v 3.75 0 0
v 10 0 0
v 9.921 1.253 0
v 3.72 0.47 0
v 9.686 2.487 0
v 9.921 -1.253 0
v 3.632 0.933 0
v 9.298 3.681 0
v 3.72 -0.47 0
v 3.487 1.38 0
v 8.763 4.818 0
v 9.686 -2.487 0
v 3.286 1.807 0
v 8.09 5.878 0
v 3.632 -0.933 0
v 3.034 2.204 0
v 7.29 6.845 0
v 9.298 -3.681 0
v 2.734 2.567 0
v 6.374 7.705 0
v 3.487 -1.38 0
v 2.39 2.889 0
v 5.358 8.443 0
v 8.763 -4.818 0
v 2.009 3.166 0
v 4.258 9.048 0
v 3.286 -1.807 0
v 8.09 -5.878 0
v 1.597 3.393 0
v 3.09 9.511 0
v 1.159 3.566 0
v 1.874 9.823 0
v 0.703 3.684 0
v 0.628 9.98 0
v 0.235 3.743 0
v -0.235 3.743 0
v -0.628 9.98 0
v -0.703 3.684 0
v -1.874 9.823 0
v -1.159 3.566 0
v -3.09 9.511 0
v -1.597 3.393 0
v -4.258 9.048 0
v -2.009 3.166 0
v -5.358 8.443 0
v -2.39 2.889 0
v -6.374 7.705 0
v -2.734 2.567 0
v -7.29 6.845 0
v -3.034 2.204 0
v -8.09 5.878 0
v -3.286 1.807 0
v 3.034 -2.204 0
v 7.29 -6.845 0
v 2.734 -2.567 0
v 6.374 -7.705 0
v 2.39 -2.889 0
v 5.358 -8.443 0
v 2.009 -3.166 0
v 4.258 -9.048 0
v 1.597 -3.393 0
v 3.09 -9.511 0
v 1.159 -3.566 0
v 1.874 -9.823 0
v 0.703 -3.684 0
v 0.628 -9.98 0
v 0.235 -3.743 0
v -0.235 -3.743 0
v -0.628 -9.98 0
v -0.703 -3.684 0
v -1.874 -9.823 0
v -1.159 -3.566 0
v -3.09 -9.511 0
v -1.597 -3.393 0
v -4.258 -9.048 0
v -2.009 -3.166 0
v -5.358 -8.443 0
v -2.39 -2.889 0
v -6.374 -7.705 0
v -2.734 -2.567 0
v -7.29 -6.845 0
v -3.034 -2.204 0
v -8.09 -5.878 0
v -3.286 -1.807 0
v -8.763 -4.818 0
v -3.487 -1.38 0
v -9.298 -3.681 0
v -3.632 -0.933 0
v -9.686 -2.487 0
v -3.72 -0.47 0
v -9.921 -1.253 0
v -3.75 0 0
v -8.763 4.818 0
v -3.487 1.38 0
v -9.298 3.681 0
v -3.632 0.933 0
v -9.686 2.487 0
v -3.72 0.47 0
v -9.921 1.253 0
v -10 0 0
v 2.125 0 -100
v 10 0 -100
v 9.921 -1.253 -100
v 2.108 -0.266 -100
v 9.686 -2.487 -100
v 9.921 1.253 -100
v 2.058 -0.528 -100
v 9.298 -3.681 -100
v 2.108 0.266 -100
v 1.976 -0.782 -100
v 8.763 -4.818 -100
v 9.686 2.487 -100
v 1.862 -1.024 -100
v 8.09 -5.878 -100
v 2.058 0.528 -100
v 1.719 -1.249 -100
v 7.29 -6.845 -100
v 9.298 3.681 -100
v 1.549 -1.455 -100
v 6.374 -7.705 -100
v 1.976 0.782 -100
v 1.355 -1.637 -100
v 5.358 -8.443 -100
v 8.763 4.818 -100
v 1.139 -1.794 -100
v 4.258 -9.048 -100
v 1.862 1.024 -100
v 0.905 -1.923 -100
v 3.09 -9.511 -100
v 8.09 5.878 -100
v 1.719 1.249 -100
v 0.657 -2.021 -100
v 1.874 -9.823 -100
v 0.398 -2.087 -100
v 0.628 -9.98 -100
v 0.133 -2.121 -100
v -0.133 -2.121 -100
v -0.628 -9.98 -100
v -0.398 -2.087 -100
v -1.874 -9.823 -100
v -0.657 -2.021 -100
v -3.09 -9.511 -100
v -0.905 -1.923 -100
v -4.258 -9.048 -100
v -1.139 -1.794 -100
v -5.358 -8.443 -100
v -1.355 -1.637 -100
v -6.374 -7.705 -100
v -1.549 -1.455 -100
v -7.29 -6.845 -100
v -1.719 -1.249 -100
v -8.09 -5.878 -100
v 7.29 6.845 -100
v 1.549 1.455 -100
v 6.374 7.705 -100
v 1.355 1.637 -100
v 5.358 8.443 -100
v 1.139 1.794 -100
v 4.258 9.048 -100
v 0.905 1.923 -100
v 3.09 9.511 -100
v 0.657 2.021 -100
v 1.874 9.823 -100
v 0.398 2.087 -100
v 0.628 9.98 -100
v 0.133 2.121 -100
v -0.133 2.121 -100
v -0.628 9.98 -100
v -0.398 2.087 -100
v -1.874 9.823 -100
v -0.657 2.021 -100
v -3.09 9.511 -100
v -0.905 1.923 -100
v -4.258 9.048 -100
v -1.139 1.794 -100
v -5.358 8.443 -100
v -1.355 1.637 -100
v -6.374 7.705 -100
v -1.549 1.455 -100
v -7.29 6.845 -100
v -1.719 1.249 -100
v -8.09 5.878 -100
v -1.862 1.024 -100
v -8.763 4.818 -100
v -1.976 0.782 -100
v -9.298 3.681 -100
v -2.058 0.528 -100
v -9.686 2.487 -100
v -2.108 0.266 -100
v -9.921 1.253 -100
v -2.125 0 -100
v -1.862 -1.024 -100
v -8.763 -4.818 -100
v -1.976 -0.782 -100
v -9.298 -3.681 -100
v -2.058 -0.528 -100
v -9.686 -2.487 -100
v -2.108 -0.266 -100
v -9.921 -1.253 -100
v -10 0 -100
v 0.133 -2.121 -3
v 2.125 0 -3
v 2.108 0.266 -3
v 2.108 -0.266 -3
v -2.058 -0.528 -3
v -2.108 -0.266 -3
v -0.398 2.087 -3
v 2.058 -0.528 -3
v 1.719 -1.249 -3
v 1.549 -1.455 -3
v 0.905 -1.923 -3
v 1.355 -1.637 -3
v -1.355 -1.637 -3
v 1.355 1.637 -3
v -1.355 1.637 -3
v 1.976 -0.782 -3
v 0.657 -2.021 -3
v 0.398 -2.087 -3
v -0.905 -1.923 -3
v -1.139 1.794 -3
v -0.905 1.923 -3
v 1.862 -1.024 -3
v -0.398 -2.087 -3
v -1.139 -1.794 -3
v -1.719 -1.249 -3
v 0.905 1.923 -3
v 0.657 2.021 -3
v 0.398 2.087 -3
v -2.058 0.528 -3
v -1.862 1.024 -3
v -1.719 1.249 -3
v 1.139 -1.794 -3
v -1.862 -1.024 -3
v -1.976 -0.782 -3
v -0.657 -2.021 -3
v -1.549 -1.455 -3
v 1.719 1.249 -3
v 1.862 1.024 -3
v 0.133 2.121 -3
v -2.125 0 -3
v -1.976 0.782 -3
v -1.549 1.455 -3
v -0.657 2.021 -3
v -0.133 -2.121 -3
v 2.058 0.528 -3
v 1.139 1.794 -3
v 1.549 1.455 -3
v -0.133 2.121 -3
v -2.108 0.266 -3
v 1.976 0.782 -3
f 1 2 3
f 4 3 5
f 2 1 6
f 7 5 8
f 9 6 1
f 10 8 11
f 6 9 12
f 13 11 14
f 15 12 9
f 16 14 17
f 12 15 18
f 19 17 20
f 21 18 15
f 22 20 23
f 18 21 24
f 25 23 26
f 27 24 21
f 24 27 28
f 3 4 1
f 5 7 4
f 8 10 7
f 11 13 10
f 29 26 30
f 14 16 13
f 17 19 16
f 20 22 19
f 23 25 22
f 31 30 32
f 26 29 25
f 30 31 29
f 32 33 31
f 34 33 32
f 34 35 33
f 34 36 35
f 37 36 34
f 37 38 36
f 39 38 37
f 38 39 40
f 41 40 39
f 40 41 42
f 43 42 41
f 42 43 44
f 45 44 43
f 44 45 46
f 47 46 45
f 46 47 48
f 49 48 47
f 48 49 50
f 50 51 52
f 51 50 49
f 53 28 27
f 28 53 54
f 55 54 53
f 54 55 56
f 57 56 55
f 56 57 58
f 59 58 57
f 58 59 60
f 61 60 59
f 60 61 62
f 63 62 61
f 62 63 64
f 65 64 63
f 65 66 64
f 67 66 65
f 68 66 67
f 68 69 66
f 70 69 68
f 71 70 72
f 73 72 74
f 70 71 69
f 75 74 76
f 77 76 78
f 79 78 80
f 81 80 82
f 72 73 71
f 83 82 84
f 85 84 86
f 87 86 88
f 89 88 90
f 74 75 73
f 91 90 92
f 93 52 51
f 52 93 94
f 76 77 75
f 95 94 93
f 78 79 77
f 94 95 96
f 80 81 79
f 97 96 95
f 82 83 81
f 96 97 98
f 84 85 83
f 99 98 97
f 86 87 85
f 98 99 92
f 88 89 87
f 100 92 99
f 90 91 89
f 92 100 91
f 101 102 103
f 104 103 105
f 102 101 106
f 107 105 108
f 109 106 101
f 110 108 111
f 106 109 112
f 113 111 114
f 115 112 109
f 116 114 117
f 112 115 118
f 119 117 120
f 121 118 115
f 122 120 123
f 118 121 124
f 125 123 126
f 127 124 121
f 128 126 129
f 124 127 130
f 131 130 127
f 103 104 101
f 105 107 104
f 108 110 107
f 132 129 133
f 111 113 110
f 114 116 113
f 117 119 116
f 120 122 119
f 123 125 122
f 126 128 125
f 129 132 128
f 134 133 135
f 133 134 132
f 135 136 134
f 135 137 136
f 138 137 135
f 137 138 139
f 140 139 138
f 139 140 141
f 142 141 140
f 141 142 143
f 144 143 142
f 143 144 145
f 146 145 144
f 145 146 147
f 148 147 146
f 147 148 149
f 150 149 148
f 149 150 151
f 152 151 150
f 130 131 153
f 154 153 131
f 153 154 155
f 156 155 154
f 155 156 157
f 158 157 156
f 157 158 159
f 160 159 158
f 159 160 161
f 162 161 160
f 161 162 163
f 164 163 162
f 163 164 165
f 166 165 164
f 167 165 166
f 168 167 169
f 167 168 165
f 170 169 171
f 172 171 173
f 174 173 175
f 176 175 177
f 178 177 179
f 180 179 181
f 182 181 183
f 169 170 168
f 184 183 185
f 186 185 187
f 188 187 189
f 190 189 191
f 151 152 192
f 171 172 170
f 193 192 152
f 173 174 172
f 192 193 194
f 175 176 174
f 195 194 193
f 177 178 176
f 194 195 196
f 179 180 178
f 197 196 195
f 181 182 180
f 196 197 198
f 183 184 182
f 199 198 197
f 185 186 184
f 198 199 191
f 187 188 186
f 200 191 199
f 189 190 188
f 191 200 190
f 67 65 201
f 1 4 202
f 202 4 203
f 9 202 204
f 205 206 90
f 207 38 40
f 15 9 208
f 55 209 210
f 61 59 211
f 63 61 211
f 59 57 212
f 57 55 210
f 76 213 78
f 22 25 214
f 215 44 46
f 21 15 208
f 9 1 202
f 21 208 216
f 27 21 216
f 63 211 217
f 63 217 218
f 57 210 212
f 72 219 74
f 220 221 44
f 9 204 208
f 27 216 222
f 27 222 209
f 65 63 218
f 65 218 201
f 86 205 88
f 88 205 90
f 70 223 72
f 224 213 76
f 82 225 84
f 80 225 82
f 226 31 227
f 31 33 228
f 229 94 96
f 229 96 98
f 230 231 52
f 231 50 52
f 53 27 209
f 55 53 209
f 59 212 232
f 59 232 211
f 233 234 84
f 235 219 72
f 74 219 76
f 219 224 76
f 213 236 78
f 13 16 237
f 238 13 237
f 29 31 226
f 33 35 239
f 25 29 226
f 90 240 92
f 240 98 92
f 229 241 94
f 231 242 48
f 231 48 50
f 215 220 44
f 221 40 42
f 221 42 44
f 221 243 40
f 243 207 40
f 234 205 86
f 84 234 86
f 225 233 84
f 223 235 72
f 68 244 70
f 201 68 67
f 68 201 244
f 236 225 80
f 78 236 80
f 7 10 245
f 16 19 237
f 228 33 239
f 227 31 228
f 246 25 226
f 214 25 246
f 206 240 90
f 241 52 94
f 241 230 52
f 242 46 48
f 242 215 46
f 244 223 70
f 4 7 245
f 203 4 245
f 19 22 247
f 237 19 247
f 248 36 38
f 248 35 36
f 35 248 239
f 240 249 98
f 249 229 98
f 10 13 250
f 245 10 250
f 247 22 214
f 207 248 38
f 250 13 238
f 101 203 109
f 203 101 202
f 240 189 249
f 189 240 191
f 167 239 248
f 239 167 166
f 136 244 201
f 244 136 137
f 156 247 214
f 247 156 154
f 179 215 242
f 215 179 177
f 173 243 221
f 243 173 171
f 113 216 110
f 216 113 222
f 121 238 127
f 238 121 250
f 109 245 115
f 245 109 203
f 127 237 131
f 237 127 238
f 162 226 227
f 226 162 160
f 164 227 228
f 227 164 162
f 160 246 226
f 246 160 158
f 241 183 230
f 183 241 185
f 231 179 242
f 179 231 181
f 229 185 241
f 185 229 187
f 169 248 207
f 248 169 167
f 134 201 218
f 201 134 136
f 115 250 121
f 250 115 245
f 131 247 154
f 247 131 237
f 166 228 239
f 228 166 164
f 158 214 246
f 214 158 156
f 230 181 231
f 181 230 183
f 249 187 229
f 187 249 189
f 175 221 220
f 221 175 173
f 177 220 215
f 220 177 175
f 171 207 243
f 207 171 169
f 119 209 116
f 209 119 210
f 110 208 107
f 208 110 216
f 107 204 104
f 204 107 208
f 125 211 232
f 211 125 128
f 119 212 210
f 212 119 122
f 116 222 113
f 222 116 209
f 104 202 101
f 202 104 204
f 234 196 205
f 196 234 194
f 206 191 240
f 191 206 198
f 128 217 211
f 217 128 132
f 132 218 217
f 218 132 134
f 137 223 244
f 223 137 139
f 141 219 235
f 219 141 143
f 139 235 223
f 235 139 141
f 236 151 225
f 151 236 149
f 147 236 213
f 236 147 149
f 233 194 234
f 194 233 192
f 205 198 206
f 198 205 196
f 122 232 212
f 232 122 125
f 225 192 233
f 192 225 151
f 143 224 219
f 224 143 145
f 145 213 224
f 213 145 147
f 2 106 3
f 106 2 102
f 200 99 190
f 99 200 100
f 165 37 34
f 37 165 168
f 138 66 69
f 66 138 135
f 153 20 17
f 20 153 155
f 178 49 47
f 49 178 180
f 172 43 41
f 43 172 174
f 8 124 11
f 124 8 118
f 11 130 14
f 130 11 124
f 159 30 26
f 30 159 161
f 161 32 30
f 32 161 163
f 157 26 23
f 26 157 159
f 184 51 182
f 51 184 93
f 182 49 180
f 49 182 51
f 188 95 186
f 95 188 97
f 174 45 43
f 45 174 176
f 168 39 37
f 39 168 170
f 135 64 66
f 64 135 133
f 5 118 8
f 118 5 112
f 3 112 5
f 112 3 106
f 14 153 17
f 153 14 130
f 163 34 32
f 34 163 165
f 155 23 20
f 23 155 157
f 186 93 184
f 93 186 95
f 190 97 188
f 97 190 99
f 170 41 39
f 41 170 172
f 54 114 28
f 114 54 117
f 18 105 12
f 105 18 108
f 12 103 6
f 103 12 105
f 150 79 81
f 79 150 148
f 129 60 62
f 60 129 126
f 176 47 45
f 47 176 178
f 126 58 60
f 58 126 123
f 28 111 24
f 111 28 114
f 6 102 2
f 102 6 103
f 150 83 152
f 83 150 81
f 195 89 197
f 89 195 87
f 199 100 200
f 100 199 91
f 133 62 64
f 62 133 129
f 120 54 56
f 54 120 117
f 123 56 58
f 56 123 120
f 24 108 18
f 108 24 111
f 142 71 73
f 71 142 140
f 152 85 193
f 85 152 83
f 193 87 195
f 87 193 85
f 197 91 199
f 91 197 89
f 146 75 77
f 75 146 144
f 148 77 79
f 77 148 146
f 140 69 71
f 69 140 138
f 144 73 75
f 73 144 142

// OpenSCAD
$fn = 50;


difference() {
	union() {
		translate(v = [0, 0, -100.0000000000]) {
			cylinder(h = 100, r = 10.0000000000);
		}
	}
	union() {
		translate(v = [0, 0, 0]) {
			rotate(a = [0, 0, 0]) {
				difference() {
					union() {
						#translate(v = [0, 0, -100.0000000000]) {
							cylinder(h = 100, r = 2.0000000000);
						}
						#translate(v = [0, 0, -3]) {
							cylinder(h = 3, r = 10.0000000000, r1 = 2.1250000000, r2 = 3.7500000000);
						}
						#translate(v = [0, 0, -100.0000000000]) {
							cylinder(h = 100, r = 2.1250000000);
						}
						#translate(v = [0, 0, -100.0000000000]) {
							cylinder(h = 100, r = 2.0000000000);
						}
					}
					union();
				}
			}
		}
	}
}
